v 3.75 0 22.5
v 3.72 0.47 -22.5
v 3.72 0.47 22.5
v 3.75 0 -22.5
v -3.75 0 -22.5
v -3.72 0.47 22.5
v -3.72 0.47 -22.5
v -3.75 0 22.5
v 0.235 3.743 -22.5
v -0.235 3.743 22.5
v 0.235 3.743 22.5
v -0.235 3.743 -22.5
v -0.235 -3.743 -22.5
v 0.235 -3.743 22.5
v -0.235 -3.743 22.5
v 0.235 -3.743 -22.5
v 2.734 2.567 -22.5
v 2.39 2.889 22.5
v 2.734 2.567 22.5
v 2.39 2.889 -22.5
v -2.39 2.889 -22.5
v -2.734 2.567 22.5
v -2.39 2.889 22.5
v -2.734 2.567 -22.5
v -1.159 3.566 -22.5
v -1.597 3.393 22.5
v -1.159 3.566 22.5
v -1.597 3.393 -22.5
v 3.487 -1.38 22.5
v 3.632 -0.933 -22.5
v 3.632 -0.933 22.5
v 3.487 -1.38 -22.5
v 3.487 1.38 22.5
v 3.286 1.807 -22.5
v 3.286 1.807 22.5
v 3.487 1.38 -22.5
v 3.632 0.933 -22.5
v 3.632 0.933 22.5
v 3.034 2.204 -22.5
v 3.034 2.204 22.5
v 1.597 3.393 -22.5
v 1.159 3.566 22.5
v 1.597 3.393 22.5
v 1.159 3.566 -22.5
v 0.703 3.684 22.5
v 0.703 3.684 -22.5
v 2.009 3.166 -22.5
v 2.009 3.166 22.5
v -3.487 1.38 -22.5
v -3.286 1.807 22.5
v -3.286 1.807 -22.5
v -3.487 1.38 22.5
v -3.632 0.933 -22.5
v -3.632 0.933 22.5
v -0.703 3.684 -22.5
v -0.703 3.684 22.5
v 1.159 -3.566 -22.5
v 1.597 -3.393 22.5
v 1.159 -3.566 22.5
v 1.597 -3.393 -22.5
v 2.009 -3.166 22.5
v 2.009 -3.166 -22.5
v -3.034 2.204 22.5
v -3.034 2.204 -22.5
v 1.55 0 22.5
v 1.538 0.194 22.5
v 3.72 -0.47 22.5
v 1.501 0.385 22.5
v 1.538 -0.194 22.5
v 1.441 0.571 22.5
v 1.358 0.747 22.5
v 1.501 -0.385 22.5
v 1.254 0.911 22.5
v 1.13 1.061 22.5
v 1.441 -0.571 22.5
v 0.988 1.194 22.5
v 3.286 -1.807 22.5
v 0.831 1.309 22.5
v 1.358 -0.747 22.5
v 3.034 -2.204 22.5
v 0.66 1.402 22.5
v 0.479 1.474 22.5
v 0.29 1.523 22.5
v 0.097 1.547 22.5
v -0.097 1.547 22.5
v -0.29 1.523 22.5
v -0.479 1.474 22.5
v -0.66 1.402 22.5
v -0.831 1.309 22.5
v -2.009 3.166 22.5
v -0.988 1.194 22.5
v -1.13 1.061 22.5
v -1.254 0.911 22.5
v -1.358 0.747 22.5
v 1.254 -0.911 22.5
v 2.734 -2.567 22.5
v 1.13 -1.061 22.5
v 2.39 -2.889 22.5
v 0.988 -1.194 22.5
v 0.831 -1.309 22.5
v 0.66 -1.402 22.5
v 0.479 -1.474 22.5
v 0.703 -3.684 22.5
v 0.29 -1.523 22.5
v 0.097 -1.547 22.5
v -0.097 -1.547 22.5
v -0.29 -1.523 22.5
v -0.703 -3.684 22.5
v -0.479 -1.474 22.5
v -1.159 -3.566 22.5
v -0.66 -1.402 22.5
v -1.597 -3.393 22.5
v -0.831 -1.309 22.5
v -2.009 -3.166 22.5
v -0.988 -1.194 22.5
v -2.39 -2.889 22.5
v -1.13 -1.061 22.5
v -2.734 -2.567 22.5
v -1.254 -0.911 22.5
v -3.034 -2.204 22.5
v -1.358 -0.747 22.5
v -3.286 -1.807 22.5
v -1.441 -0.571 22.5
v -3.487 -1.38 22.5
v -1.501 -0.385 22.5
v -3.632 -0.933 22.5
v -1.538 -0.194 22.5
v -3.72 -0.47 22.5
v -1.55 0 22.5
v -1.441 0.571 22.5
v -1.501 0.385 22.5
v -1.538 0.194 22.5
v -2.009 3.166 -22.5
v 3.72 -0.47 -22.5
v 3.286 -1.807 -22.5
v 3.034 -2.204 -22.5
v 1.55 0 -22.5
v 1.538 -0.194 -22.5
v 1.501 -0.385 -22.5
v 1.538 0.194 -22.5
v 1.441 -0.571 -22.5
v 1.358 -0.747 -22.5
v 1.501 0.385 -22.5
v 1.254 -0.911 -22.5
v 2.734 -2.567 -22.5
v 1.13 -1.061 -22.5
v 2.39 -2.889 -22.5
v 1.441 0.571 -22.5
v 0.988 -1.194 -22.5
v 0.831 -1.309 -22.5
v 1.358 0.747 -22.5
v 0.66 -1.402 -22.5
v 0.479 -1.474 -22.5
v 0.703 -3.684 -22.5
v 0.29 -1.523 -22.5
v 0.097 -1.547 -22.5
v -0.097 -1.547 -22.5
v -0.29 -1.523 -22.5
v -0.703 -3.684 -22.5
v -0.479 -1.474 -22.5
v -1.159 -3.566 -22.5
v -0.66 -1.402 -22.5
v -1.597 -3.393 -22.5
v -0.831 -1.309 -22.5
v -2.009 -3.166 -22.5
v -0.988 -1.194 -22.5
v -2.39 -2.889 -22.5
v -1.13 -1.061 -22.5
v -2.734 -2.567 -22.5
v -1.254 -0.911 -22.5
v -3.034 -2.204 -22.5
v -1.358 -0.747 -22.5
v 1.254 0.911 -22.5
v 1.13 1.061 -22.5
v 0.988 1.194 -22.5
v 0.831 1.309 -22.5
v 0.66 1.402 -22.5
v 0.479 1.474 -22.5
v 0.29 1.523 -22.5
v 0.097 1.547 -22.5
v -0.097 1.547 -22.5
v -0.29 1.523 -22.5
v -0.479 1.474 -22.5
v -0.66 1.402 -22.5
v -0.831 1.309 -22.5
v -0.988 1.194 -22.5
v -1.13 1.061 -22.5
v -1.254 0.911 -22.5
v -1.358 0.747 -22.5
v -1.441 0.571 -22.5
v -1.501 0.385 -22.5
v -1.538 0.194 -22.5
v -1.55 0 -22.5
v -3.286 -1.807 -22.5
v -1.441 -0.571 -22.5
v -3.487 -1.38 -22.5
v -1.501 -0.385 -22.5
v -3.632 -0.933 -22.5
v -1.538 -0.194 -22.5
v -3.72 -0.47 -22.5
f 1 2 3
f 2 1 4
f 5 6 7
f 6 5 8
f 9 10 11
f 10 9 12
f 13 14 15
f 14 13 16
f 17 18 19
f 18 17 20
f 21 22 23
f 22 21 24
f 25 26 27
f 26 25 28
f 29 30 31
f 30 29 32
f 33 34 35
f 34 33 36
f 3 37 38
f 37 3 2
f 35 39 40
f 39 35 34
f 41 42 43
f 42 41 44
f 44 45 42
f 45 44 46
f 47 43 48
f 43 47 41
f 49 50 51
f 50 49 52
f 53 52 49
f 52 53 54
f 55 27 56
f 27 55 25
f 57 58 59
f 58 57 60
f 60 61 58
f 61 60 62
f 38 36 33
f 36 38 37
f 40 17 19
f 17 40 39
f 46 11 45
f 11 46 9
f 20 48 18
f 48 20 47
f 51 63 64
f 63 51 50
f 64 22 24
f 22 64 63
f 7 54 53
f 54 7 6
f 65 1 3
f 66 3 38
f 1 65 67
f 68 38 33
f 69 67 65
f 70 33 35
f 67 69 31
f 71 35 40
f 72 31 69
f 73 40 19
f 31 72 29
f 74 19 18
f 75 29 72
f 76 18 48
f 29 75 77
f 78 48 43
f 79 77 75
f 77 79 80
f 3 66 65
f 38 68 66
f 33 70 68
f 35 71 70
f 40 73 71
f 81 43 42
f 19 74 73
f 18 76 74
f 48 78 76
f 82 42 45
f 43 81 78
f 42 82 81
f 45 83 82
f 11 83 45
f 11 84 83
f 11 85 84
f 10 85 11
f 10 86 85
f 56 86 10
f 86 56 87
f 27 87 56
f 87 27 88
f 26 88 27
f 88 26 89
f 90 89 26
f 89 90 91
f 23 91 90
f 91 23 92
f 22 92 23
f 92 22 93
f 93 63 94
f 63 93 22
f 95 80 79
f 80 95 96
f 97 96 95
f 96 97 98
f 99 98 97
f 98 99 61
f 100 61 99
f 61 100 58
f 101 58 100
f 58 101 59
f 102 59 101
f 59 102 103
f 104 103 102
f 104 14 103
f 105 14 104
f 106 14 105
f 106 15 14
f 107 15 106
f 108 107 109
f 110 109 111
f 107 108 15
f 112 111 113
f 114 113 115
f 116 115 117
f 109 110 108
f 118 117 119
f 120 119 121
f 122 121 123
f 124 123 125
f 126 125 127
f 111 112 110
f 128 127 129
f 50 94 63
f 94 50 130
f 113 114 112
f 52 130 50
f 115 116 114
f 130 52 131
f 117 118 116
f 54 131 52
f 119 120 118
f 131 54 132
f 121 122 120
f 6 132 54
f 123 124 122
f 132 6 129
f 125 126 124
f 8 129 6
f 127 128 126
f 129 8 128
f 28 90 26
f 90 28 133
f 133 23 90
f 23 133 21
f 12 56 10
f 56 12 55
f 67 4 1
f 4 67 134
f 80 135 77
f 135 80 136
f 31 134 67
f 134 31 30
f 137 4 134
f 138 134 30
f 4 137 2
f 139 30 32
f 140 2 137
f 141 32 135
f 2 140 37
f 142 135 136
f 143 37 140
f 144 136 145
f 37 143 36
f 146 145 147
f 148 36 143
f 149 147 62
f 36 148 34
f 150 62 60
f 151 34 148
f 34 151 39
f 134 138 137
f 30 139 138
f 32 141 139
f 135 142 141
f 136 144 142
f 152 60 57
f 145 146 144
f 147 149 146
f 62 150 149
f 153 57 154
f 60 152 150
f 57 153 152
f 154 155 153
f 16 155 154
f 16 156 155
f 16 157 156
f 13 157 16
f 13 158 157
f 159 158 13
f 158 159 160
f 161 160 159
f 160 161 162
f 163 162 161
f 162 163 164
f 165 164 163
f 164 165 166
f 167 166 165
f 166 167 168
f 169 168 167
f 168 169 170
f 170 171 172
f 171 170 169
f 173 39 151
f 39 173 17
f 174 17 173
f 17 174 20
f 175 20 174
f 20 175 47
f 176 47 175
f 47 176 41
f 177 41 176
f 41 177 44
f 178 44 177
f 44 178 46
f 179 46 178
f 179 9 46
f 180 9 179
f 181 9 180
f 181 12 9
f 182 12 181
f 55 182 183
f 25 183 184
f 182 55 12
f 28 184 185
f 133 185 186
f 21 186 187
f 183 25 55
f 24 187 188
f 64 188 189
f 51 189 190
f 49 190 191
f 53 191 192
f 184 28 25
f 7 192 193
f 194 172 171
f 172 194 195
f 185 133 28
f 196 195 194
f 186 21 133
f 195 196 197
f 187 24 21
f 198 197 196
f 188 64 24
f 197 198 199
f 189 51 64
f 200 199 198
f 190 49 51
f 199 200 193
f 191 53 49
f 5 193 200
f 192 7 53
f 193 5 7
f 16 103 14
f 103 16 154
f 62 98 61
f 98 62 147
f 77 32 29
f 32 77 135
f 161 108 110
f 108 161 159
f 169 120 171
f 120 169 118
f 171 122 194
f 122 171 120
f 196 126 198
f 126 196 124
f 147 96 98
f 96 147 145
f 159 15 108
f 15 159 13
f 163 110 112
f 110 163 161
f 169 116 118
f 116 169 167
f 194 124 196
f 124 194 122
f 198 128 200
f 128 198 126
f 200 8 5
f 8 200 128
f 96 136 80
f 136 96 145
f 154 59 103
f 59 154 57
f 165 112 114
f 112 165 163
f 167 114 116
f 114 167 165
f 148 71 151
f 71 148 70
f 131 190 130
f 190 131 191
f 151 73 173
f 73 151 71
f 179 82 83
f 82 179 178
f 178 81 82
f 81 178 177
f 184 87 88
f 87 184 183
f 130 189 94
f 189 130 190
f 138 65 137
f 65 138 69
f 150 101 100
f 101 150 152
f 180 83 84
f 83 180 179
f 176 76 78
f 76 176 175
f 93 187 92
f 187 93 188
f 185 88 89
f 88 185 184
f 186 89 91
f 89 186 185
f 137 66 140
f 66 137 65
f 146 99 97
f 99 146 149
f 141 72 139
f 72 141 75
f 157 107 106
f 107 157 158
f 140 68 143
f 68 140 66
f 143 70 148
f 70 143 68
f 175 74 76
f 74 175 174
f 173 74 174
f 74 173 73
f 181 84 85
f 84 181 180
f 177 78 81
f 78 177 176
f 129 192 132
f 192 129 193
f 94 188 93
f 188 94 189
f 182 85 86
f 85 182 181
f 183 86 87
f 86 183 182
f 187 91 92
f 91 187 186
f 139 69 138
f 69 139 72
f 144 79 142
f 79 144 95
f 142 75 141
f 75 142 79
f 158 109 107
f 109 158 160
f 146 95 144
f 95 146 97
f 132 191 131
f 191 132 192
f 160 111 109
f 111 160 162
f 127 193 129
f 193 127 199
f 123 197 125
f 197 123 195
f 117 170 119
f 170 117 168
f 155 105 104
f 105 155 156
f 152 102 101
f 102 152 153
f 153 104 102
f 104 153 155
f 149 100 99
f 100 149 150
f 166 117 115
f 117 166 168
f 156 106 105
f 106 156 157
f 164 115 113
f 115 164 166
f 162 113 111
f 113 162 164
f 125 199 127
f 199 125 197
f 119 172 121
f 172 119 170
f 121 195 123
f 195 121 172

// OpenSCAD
$fn = 50;


difference() {
	union() {
		translate(v = [0, 0, -22.5000000000]) {
			cylinder(h = 45, r = 3.7500000000);
		}
	}
	union() {
		translate(v = [0, 0, -100.0000000000]) {
			cylinder(h = 200, r = 1.5500000000);
		}
	}
}
